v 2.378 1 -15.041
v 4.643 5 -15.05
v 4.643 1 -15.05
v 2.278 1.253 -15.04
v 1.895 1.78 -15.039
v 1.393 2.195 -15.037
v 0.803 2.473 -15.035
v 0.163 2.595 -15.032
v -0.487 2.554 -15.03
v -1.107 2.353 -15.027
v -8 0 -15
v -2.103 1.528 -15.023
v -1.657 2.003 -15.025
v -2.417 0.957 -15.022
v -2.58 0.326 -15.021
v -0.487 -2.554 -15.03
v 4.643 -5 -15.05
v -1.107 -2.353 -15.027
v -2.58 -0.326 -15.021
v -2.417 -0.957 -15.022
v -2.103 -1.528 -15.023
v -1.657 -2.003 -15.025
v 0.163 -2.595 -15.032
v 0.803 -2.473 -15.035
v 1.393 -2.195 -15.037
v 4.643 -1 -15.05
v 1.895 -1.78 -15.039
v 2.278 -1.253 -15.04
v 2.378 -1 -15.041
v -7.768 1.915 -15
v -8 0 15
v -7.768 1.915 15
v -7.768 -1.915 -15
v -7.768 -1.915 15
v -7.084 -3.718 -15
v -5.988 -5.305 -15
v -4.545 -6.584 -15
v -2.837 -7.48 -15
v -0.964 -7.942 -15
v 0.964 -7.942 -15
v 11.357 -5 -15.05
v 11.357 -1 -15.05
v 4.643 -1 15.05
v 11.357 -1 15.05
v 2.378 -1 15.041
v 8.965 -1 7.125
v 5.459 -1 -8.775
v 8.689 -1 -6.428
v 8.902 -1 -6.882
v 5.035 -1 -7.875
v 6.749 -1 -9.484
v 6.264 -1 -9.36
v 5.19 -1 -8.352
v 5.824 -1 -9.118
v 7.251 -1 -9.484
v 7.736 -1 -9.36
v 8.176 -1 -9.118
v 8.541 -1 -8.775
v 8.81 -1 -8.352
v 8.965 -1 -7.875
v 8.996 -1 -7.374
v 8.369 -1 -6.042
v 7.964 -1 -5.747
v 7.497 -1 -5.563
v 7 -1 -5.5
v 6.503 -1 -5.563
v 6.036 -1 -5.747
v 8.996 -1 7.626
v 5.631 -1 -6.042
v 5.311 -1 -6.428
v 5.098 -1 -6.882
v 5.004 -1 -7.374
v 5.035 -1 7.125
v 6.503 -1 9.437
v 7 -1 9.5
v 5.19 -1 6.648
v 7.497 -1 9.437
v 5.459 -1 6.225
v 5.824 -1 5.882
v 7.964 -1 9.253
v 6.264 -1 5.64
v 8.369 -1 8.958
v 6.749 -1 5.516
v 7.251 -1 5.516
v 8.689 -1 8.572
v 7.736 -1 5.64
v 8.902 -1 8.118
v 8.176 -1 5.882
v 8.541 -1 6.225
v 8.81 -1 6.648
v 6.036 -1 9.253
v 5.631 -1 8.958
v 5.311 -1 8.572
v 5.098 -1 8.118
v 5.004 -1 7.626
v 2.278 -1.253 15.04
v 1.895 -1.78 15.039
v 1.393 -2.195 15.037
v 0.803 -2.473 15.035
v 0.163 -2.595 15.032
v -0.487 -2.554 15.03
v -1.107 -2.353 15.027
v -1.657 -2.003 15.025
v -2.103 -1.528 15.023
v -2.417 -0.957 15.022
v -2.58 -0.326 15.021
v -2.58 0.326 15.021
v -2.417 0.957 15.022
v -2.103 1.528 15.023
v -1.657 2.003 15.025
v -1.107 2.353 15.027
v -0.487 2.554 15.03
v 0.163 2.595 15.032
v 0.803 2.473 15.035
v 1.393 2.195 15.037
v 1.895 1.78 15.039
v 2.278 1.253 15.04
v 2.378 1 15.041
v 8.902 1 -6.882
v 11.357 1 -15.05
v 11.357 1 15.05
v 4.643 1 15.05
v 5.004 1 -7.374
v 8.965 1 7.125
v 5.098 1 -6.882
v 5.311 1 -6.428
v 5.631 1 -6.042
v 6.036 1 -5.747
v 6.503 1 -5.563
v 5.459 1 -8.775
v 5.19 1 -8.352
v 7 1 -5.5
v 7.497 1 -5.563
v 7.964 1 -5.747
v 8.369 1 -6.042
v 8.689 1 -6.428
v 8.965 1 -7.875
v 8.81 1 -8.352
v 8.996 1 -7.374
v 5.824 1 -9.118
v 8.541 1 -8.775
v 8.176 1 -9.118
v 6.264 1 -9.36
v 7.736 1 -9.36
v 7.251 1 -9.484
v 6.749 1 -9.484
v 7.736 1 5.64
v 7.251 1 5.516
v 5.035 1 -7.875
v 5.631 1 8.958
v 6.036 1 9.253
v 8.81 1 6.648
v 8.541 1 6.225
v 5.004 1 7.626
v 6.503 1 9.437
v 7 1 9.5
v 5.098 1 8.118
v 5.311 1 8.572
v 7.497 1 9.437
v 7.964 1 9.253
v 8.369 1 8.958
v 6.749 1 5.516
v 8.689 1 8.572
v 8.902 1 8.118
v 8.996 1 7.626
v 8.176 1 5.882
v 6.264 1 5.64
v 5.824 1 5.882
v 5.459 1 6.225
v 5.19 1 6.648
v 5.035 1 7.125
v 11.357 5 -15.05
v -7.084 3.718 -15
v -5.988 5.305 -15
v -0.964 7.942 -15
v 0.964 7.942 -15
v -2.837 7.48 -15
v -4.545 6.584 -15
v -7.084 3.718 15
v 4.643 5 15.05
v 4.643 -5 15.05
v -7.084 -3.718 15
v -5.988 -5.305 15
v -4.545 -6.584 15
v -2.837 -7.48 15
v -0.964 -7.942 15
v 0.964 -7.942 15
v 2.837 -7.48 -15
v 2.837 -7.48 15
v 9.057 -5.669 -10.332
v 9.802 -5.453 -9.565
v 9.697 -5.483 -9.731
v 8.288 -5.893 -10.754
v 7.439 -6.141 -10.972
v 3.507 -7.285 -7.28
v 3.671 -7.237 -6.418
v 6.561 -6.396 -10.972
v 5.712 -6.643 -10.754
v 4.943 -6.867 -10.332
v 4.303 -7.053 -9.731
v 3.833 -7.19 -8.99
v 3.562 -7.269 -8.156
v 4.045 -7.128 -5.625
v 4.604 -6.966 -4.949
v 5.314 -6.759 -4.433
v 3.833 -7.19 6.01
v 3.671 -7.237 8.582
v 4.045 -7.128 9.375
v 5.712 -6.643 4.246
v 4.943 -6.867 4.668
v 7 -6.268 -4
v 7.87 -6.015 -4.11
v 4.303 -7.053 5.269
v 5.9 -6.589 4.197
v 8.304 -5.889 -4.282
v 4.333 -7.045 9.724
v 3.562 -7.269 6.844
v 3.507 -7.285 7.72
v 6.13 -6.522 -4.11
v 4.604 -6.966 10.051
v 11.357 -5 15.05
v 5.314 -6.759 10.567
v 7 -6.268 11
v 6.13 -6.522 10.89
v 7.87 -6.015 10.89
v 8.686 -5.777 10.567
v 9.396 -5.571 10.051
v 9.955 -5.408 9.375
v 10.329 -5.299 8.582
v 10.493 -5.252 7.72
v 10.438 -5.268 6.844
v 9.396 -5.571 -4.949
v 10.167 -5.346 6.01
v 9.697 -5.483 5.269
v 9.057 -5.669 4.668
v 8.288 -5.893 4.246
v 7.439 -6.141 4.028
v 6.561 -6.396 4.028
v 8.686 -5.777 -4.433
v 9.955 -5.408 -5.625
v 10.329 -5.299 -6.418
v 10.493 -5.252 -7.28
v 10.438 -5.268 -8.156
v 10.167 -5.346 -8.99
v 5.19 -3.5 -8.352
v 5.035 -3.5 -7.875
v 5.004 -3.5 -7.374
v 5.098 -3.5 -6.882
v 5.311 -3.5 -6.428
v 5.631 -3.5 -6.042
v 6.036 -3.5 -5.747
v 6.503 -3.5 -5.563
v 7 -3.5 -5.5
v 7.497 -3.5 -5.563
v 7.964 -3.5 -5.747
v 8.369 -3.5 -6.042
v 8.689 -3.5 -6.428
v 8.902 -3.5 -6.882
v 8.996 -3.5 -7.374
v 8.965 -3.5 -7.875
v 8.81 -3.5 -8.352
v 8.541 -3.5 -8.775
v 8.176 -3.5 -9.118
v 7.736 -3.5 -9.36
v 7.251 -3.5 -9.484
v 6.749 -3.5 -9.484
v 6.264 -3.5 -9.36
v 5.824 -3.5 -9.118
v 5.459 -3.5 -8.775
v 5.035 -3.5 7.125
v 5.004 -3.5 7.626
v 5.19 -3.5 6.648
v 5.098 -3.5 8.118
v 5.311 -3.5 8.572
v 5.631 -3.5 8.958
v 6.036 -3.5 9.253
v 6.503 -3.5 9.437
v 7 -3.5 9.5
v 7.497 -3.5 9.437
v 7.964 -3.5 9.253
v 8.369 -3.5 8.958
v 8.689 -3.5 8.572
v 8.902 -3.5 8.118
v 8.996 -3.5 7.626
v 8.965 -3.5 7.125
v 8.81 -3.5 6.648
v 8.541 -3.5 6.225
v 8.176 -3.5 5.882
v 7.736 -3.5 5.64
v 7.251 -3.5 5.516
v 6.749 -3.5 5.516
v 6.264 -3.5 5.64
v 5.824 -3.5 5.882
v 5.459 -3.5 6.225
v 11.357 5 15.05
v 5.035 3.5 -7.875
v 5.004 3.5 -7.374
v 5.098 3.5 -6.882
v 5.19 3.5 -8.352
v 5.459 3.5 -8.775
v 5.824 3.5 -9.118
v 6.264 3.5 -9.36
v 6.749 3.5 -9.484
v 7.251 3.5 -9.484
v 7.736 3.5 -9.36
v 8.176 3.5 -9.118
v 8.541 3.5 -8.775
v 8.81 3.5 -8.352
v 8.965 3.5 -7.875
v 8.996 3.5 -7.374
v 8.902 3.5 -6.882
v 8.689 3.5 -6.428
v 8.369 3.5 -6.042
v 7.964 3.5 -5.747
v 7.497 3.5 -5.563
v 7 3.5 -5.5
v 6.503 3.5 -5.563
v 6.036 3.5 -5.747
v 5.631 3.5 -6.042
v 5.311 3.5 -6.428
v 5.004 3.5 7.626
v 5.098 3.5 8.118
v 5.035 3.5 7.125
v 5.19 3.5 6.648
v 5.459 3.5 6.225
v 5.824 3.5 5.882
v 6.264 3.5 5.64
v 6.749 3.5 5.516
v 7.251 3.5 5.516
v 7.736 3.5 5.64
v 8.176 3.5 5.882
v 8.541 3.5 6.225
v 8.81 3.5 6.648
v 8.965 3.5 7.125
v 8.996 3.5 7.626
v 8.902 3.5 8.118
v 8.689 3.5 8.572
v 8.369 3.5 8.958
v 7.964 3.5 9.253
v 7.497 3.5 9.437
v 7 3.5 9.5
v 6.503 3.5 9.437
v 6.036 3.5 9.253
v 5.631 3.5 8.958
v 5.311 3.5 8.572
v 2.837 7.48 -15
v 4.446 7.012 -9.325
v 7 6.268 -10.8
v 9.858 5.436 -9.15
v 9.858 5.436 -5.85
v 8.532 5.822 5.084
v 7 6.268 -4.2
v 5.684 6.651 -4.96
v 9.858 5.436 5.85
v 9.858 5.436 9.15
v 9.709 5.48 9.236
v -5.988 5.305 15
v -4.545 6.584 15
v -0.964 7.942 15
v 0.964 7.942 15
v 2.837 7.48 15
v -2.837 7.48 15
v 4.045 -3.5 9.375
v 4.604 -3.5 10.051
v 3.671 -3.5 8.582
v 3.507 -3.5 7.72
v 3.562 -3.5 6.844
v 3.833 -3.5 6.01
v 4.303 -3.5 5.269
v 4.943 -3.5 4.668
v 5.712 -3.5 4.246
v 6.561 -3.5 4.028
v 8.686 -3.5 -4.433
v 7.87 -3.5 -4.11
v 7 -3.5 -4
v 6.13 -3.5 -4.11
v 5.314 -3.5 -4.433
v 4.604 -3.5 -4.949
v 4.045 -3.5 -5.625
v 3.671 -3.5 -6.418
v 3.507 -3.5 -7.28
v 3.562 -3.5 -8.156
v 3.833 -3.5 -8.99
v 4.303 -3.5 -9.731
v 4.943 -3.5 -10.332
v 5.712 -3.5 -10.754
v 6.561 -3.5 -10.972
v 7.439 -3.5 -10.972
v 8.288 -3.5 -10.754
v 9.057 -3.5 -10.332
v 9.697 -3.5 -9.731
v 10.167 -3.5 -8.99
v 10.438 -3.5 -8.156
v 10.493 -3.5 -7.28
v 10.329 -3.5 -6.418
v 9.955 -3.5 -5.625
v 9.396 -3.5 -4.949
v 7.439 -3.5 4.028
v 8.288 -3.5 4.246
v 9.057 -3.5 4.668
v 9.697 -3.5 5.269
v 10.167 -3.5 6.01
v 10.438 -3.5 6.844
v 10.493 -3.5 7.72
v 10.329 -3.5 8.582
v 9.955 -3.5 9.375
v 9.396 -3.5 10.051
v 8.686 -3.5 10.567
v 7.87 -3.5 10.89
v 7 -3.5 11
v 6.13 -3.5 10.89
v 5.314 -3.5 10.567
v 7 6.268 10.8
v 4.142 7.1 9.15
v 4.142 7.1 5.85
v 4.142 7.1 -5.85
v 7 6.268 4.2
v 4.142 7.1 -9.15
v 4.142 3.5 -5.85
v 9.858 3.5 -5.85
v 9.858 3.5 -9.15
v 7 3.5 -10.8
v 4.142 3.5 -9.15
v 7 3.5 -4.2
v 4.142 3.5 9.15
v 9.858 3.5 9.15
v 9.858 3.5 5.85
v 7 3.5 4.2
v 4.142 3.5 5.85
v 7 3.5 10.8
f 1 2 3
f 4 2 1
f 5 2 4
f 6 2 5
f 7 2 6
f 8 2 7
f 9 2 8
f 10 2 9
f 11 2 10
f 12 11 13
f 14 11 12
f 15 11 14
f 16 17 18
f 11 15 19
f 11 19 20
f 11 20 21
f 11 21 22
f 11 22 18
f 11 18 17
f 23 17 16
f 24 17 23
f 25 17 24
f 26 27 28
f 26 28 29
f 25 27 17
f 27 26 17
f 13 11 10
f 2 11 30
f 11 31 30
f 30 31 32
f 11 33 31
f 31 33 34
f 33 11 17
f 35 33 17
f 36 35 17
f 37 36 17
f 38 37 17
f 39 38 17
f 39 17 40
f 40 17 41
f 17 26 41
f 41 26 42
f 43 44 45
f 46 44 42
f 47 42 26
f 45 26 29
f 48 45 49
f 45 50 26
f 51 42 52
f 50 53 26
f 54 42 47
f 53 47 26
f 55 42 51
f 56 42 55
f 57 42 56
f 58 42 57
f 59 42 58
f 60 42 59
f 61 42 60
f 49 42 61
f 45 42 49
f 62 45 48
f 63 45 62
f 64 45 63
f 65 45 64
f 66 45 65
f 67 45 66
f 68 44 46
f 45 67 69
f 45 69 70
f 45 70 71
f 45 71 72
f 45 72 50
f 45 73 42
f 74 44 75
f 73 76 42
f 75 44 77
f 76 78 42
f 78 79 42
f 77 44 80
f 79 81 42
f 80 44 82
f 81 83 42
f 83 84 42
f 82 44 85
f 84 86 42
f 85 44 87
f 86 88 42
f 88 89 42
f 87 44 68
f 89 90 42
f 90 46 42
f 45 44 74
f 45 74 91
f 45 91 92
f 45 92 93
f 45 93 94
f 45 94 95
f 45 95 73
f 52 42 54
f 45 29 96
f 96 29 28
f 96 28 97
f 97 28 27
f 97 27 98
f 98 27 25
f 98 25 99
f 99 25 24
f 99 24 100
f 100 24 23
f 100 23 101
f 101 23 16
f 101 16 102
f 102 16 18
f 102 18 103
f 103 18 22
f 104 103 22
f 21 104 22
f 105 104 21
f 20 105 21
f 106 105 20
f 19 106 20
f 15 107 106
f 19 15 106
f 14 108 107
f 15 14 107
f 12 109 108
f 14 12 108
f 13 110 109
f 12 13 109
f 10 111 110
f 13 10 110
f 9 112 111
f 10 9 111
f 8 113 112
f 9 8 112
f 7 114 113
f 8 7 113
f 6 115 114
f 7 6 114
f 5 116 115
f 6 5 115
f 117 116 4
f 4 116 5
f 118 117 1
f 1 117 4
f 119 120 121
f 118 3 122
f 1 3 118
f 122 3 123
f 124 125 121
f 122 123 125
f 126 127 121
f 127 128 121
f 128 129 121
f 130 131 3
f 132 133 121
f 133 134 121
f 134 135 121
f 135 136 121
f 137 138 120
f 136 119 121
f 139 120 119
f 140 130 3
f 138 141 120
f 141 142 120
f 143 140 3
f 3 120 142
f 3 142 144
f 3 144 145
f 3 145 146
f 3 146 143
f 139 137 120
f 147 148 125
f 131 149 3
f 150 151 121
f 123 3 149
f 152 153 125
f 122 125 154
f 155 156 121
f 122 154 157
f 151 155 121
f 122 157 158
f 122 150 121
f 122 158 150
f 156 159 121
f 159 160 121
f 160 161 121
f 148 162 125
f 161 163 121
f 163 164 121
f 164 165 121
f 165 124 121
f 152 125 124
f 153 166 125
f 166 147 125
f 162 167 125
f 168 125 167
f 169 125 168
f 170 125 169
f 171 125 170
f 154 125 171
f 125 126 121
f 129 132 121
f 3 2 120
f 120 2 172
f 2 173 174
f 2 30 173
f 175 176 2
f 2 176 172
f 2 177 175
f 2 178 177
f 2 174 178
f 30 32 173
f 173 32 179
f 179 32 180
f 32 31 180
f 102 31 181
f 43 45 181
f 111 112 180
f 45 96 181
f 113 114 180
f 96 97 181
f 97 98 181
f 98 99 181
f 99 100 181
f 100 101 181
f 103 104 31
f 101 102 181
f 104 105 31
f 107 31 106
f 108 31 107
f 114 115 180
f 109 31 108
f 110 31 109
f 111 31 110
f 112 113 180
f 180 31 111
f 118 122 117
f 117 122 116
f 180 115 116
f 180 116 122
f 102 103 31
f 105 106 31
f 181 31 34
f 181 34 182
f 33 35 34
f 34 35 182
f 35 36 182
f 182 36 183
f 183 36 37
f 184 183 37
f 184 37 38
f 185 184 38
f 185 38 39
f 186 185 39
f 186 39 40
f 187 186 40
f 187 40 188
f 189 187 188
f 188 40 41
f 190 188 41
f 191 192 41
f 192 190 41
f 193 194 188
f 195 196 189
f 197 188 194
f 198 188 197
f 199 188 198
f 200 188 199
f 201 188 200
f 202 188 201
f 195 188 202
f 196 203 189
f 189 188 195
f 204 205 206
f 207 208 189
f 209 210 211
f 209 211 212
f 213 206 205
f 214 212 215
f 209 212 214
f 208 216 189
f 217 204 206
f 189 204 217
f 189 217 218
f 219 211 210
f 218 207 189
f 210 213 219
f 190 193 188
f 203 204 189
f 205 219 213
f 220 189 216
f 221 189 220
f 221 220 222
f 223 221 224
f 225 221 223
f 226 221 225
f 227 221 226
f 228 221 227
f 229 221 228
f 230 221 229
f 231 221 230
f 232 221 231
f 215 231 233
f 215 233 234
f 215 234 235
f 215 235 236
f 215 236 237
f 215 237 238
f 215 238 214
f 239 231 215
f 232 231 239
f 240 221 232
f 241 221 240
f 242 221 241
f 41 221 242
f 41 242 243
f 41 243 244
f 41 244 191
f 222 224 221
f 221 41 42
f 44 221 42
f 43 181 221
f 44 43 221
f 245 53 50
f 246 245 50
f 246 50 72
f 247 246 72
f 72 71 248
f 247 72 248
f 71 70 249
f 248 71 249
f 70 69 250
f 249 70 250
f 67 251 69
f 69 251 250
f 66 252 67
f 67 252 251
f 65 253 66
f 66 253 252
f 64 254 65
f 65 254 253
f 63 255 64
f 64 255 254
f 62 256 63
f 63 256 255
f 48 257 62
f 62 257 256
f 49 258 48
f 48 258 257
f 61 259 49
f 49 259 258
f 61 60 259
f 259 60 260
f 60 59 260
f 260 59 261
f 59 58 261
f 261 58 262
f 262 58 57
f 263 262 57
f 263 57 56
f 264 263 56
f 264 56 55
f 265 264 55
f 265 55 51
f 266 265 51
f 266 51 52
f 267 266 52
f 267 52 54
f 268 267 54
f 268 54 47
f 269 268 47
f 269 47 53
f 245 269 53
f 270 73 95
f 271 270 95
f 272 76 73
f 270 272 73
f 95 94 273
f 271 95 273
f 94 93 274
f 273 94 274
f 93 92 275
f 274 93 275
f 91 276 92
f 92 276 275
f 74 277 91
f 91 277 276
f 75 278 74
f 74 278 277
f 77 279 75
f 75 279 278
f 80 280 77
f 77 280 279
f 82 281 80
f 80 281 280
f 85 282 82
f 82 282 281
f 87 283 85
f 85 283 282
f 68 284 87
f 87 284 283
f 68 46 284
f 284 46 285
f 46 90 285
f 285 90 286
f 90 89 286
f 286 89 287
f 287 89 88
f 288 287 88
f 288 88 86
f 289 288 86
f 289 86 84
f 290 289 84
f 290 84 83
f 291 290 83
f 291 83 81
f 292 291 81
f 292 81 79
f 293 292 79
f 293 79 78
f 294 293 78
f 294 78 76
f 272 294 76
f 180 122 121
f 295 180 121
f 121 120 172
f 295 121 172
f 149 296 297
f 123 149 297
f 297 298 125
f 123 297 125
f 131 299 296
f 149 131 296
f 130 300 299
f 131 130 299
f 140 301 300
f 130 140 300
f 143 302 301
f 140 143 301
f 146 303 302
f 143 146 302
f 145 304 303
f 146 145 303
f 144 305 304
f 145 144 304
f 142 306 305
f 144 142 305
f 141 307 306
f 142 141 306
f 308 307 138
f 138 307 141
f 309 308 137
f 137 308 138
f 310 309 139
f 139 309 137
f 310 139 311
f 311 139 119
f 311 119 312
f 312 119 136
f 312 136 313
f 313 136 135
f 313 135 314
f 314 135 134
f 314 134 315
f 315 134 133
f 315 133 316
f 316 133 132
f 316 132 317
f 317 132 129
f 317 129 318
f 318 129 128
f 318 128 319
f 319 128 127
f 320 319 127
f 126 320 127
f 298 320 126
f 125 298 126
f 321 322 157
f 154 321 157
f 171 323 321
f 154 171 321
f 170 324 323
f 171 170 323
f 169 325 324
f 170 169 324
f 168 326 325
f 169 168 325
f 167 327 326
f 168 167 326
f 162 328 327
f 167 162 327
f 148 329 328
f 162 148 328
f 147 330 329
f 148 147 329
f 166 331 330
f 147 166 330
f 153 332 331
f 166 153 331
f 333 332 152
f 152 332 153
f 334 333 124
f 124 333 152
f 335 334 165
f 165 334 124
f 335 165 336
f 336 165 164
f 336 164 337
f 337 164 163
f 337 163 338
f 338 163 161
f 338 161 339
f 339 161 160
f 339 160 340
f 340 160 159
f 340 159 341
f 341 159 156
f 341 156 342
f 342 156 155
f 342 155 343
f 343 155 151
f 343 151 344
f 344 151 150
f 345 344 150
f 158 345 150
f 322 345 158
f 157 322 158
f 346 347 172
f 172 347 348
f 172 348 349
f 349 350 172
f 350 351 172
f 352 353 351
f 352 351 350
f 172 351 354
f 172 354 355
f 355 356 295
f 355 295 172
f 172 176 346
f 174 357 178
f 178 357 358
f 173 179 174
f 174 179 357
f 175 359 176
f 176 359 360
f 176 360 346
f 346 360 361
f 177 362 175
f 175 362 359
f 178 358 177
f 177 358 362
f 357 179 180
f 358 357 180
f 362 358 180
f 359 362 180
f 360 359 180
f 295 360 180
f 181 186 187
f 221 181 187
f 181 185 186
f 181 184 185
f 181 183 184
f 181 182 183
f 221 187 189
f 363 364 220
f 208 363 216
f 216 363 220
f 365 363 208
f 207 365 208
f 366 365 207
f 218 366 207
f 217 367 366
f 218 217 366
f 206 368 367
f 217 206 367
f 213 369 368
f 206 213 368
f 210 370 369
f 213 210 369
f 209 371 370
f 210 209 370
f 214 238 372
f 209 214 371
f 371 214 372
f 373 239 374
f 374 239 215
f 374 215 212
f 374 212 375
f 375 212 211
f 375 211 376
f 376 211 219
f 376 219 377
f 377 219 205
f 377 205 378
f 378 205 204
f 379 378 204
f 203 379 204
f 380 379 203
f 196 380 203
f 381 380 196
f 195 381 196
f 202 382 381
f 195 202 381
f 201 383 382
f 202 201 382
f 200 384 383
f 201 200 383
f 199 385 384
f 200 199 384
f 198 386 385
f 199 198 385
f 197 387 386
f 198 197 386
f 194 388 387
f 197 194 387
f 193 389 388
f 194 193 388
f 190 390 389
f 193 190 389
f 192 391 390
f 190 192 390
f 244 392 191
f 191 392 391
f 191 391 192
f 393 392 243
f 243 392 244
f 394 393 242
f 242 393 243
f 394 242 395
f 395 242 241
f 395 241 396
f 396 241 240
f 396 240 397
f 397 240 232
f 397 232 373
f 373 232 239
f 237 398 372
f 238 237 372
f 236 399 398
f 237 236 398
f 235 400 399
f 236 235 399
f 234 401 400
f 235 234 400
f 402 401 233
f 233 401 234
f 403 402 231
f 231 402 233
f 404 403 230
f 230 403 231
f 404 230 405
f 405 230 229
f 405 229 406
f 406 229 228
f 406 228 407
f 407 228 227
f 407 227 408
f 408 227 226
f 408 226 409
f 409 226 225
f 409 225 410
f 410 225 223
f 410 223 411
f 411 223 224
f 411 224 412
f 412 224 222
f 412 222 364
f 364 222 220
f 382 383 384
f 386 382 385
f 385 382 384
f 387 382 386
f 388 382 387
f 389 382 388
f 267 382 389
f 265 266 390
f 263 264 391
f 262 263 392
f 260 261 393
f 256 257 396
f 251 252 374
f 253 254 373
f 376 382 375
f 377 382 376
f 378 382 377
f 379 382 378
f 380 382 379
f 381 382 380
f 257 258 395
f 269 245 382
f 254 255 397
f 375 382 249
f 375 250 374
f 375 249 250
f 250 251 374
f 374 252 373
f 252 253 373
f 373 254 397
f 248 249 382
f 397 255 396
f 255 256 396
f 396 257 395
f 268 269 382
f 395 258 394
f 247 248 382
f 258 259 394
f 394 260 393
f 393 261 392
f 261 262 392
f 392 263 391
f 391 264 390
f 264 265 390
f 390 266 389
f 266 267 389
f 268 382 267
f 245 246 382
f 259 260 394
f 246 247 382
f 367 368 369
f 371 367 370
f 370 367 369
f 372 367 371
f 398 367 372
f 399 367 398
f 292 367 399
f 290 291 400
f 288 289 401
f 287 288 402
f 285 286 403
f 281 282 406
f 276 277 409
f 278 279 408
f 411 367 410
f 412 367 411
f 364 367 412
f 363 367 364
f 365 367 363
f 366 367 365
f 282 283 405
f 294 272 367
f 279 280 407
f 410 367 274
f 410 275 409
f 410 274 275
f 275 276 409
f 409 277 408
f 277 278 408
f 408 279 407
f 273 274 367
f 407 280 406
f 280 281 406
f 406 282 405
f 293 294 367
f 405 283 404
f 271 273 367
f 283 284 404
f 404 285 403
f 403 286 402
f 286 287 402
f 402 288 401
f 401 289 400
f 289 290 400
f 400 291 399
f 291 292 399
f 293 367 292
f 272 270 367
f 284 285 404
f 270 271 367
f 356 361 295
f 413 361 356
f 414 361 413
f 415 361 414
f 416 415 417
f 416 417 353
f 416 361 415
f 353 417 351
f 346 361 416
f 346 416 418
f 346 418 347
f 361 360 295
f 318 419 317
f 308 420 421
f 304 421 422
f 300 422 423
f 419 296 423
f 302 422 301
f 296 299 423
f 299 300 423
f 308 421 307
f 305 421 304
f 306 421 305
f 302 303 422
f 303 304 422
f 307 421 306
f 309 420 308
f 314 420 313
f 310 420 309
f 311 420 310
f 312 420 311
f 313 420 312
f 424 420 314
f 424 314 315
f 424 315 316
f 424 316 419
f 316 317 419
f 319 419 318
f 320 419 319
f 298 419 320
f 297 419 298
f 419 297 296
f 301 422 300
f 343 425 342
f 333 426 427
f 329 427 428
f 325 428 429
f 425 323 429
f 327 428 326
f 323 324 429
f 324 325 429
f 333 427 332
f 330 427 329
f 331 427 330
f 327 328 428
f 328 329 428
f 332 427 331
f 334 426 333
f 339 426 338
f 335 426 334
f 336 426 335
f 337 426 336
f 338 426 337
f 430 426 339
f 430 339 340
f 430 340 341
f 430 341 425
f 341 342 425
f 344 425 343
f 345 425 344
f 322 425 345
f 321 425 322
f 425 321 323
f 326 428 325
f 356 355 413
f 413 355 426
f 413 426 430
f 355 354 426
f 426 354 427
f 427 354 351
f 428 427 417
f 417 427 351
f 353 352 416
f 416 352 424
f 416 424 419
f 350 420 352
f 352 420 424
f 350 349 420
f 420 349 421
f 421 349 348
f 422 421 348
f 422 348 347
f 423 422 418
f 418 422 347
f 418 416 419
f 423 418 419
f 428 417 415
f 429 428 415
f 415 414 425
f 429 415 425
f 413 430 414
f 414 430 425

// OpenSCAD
external_diam=16;
top_diam=5.2;
bottom_diam=5.2;
holder=9;
height=30;
M3_nut_head=7;
M3_nut_screw=6.6;
distance_btw_holes=15;

/** /
$fa=1;
$fs=.5;
/**/

module angle_cube(size, side=3)
{
	minkowski()
	{
		cube([size[0]-side, size[1]-side, size[2]/2], center=true);
		rotate([0, 0, 0]) cube([side/1.4,side/1.428718,size[2]/2], true);
	}
}

module coupler()
{
	difference()
	{
		union()
		{
			hull()
			{
				cylinder(r=external_diam/2, h=height, center=true);
				translate([external_diam/2, 0, 0]) rotate([90, 0, 0]) angle_cube([holder, height+2.5, 10], 8);
			}
		}
		union()
		{
			translate([external_diam/2, 0, 0]) cube([holder+external_diam/2, 2, height+.1], true);
			translate([0, 0, -height/4]) cylinder(r=bottom_diam/2, h=height/2+.1, $fn=25,center=true);
			translate([0, 0, height/4]) cylinder(r=top_diam/2, h=height/2+.1, $fn=25,center=true);
			for(i=[-1,1])
			{
				translate([external_diam/2+holder/2-M3_nut_head/2-2, 0, i*distance_btw_holes/2]) rotate([90, 0, 0]) rotate([0, 0, 90]) cylinder(r=2, h=10.1, $fn=25,center=true);
				translate([external_diam/2+holder/2-M3_nut_head/2-2, holder/2+4, i*distance_btw_holes/2]) rotate([90, 0, 0]) rotate([0, 0, 90]) cylinder(r=M3_nut_screw/2, h=10, $fn=6, center=true);
				translate([external_diam/2+holder/2-M3_nut_head/2-2, -holder/2-4, i*distance_btw_holes/2]) rotate([90, 0, 0]) rotate([0, 0, 90]) cylinder(r=M3_nut_head/2, h=10, $fn=25,center=true);
			}
		}
	}
}


coupler();

*round_cone();
module round_cone(d1=10, d2=4, h=12)
{
	hull()
	{
		sphere(r=d2/2);
		translate([0, 0, d2/2]) cylinder(r1=d2/2, r2=d1/2, h=h-d2/2);
	}
}
